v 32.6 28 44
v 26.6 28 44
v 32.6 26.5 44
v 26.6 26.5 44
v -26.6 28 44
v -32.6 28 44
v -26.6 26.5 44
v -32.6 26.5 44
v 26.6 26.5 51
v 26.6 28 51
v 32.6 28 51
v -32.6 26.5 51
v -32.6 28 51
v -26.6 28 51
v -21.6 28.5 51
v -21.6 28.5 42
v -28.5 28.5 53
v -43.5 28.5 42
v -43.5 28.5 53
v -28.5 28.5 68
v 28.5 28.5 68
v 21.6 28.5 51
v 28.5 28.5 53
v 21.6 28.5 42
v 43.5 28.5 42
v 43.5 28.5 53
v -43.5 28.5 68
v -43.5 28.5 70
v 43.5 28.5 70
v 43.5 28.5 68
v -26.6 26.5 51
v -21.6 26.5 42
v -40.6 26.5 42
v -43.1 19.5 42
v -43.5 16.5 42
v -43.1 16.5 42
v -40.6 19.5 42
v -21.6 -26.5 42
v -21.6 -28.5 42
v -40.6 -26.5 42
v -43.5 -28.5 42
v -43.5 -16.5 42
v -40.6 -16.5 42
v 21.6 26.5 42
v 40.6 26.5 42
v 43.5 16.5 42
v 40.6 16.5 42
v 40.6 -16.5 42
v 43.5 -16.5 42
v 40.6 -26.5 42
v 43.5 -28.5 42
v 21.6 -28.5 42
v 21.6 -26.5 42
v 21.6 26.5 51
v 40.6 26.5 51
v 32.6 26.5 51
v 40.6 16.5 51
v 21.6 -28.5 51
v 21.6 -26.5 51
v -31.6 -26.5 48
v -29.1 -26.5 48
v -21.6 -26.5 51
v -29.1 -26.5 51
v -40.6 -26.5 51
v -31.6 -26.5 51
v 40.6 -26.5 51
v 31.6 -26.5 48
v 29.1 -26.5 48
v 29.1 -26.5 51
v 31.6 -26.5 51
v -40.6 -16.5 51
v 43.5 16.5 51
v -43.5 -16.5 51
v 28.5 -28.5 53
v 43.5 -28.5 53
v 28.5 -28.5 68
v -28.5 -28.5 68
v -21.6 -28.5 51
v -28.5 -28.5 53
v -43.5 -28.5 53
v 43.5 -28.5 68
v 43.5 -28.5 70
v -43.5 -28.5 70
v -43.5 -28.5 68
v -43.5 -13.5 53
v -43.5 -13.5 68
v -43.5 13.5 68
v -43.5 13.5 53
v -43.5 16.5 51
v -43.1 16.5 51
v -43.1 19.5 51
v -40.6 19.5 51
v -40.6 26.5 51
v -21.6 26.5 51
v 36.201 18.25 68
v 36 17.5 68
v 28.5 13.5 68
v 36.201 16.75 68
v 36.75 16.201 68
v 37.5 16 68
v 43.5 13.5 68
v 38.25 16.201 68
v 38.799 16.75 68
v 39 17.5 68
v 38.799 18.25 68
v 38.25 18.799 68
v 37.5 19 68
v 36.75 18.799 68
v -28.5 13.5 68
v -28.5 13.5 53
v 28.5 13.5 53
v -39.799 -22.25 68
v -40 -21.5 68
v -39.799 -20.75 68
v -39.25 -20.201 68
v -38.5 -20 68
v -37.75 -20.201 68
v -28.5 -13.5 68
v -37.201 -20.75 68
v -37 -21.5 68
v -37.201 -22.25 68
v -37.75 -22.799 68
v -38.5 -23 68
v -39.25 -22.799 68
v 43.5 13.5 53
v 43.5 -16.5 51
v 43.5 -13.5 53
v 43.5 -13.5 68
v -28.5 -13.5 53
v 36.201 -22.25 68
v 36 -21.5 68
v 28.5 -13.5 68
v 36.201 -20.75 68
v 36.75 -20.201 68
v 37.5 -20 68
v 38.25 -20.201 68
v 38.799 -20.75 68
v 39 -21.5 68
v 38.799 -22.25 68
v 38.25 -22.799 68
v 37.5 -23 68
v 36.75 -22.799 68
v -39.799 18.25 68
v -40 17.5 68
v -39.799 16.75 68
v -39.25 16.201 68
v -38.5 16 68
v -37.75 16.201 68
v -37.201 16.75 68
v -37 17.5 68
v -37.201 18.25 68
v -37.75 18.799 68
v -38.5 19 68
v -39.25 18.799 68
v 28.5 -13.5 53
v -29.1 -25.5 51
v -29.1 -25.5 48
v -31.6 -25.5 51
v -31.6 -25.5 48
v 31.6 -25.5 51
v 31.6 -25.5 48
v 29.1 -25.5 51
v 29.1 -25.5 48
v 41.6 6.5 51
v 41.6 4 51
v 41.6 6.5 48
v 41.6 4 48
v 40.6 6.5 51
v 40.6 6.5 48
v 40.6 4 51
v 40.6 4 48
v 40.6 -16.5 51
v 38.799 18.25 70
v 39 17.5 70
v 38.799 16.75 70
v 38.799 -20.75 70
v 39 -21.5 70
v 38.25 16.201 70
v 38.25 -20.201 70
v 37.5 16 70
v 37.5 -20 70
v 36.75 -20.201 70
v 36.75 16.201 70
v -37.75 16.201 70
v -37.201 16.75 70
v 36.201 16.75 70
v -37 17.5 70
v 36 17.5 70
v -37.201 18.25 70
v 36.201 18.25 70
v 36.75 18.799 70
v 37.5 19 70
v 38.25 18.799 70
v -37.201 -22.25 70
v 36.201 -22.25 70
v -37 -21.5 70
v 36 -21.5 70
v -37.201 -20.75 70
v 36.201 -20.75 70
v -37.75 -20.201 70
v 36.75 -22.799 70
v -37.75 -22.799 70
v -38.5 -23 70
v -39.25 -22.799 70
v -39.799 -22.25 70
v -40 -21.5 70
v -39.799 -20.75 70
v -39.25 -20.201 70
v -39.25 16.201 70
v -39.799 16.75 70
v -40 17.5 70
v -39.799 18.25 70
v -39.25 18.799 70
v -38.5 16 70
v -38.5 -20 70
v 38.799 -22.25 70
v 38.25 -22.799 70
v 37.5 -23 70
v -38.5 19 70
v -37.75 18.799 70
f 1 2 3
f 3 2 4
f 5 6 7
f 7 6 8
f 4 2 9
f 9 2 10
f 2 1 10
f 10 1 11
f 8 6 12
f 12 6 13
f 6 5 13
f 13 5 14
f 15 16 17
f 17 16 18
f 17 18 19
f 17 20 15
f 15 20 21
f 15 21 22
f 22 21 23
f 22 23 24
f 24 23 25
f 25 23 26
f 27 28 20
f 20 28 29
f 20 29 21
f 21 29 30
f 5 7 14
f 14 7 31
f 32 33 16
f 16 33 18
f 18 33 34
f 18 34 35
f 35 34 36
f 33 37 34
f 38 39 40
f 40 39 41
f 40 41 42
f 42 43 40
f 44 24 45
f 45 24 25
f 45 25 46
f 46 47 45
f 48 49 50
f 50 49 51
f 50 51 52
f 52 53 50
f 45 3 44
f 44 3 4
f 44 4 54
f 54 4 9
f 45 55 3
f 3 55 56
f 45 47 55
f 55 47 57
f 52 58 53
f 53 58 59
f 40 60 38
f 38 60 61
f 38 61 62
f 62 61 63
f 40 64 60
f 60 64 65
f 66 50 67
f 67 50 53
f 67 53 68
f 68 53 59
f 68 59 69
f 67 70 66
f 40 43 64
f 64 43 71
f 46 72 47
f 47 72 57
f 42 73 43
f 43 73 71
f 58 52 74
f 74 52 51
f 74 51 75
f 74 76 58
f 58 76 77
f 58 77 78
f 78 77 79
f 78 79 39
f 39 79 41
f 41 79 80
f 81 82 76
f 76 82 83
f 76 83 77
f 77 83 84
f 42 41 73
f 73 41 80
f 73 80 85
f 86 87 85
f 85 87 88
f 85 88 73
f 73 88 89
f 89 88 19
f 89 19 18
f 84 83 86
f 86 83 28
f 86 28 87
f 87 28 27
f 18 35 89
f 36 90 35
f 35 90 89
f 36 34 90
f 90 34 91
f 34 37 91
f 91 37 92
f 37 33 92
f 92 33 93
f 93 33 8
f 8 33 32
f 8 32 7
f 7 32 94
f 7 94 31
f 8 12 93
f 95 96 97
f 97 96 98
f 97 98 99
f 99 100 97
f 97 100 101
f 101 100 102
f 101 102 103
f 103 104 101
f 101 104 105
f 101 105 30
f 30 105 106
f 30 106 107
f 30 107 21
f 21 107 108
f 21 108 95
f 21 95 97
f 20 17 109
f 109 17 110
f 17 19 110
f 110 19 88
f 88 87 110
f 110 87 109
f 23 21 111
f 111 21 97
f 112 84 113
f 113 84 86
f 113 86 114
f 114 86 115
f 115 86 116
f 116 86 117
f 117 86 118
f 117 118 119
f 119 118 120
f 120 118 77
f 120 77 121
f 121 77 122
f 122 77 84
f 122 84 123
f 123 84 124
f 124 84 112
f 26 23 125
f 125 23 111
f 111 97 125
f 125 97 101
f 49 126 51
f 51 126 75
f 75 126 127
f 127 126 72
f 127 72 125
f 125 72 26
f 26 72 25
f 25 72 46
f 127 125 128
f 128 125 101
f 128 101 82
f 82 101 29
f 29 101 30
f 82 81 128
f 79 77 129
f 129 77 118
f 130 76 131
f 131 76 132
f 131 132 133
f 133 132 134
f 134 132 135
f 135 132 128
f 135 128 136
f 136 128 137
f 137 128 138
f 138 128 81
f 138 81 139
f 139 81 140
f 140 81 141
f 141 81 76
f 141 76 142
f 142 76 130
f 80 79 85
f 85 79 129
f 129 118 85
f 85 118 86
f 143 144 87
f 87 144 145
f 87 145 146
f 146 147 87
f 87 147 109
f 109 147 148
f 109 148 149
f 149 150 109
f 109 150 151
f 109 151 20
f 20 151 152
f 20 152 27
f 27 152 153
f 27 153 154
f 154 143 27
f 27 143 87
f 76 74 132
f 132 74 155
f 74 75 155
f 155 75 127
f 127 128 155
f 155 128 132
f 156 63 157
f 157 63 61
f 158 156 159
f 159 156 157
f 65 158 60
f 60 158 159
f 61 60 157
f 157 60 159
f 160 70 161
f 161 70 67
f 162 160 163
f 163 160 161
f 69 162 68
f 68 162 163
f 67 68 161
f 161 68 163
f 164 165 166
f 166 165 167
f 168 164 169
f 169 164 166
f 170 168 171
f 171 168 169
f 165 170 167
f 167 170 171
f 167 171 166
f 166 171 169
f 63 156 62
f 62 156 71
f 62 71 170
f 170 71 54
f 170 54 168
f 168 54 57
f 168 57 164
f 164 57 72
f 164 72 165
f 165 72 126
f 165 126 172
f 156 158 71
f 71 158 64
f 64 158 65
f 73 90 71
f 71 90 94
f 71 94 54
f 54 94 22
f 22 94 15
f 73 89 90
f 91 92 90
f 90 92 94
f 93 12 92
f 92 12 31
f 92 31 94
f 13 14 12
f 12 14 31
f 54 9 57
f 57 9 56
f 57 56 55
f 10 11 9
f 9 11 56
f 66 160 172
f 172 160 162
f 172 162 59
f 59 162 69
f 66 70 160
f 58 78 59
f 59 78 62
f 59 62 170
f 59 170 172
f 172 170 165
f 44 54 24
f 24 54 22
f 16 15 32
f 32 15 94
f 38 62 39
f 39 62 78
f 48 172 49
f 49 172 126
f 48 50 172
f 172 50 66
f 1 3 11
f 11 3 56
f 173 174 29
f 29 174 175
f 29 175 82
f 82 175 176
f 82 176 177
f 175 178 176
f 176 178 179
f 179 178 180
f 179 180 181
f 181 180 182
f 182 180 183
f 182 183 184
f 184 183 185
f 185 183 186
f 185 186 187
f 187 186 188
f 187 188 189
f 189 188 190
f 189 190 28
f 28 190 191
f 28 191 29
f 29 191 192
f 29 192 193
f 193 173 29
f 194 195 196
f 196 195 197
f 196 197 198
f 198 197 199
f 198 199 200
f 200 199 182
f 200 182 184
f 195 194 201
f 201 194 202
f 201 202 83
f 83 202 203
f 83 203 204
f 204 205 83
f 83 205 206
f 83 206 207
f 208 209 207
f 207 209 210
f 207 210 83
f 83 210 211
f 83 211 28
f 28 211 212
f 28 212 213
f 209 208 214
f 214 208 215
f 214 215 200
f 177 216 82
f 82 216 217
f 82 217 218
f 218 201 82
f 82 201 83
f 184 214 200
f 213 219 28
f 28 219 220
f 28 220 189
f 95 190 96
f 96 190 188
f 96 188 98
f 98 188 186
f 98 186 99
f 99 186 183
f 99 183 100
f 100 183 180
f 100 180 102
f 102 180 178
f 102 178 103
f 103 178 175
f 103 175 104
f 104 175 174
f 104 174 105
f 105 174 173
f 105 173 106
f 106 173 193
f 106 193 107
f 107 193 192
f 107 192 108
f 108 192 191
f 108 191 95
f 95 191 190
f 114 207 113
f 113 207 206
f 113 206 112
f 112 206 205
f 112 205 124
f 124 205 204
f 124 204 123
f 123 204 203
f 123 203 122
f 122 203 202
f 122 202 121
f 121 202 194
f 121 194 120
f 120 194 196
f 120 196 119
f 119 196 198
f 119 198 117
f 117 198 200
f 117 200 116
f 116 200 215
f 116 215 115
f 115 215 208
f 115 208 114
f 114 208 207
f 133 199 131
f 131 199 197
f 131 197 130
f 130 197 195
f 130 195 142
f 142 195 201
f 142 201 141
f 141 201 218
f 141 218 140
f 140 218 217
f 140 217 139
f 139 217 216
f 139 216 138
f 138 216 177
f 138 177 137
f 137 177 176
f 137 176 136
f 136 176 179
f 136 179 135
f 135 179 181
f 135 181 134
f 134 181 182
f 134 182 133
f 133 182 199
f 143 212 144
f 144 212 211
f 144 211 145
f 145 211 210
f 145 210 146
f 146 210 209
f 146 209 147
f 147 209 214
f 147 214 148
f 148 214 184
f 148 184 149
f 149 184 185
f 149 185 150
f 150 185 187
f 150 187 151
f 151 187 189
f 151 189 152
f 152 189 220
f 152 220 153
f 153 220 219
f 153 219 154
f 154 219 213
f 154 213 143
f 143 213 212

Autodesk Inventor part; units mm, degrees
ref_plane "YZ Plane" through (0, 0, 0) normal (1, 0, 0) x (0, 1, 0)
ref_plane "XZ Plane" through (0, 0, 0) normal (0, 1, 0) x (-1, 0, 0)
ref_plane "XY Plane" through (0, 0, 0) normal (0, 0, 1) x (1, 0, 0)
sketch "スケッチ3" plane through (0, 0, 0) normal (0, 0, 1) x (1, 0, 0)
  line L0 (43.5, -28.5) -> (-43.5, -28.5)
  line L1 (-43.5, -28.5) -> (-43.5, 28.5)
  line L2 (-43.5, 28.5) -> (43.5, 28.5)
  line L3 (43.5, 28.5) -> (43.5, -28.5)
  line L4 (43.5, -28.5) -> (-43.5, 28.5) construction
  line L5 (-43.5, -28.5) -> (43.5, 28.5) construction
  point P0 (0, 0)
  dimension "d4" = 57
  dimension "d5" = 87
extrude "枠" add sketch "スケッチ3" along normal blind 70
sketch "スケッチ4" plane through (0, 0, 0) normal (0, 0, -1) x (-1, 0, 0)
  line L0 (40.6, -26.5) -> (-40.6, -26.5)
  line L1 (-40.6, -26.5) -> (-40.6, 26.5)
  line L2 (-40.6, 26.5) -> (40.6, 26.5)
  line L3 (40.6, 26.5) -> (40.6, -26.5)
  line L4 (40.6, -26.5) -> (-40.6, 26.5) construction
  line L5 (-40.6, -26.5) -> (40.6, 26.5) construction
  point P0 (0, 0)
  dimension "d8" = 81.2
  dimension "d9" = 53
extrude "本体" cut sketch "スケッチ4" against normal blind 56
sketch "スケッチ5" plane through (-43.5, 28.5, 0) normal (0, 1, 0) x (1, 0, 0)
  line L0 (0, 0) -> (0, -70) projected
  line L1 (87, 0) -> (87, -70) projected
  line L2 (0, -51) -> (87, -51)
  line L3 (87, -51) -> (87, -55)
  line L4 (87, -55) -> (0, -55)
  line L5 (0, -55) -> (0, -51)
  line L6 (87, -70) -> (0, -70) projected
  point P0 (43.5, 0)
  dimension "d12" = 15
  dimension "d13" = 4
extrude "台" add sketch "スケッチ5" against normal blind 55 contours L2 L1 L4 L0
sketch "スケッチ6" plane through (0, 0, 0) normal (0, 0, -1) x (-1, 0, 0)
  line L0 (40.6, -26.5) -> (40.6, 26.5) projected
  line L1 (43.1, 19.5) -> (40.6, 19.5)
  line L2 (40.6, 19.5) -> (40.6, 13.5)
  line L3 (40.6, 13.5) -> (43.1, 13.5)
  line L4 (43.1, 13.5) -> (43.1, 19.5)
  line L5 (40.6, 26.5) -> (-40.6, 26.5) projected
  line L6 (32.6, 26.5) -> (26.6, 26.5)
  line L7 (26.6, 26.5) -> (26.6, 28)
  line L8 (26.6, 28) -> (32.6, 28)
  line L9 (32.6, 28) -> (32.6, 26.5)
  line L10 (-26.6, 26.5) -> (-32.6, 26.5)
  line L11 (-32.6, 26.5) -> (-32.6, 28)
  line L12 (-32.6, 28) -> (-26.6, 28)
  line L13 (-26.6, 28) -> (-26.6, 26.5)
  line L14 (-40.6, -26.5) -> (-40.6, 26.5) projected
  point P0 (0, 0)
  dimension "d16" = 2.5
  dimension "d17" = 13
  dimension "d18" = 6
  dimension "d19" = 1.5
  dimension "d20" = 8
  dimension "d21" = 6
  dimension "d22" = 1.5
  dimension "d23" = 6
  dimension "d24" = 8
extrude "溝" cut sketch "スケッチ6" against normal blind 51
sketch "スケッチ7" plane through (40.6, -26.5, 0) normal (-1, 0, 0) x (0, 0, 1)
  line L0 (51, 10) -> (31, 10)
  line L1 (31, 10) -> (31, 43)
  line L2 (31, 43) -> (51, 43)
  line L3 (51, 43) -> (51, 10)
  line L4 (51, 53) -> (0, 53) projected
  line L5 (51, 0) -> (51, 53) projected
  point P0 (0, 26.5)
  point P1 (0, 0)
  dimension "d27" = 10
  dimension "d28" = 10
  dimension "d29" = 20
  dimension "d30" = 0
extrude "USB穴" cut sketch "スケッチ7" along normal through all both and the other way through all
sketch "スケッチ8" plane through (-26.6, 26.5, 0) normal (0, -1, 0) x (1, 0, 0)
  line L0 (67.2, 51) -> (-14, 51) projected
  line L1 (48.2, 31) -> (5, 31)
  line L2 (5, 31) -> (5, 51)
  line L3 (5, 51) -> (48.2, 51)
  line L4 (48.2, 51) -> (48.2, 31)
  line L5 (53.2, 0) -> (53.2, 51) projected
  line L6 (0, 51) -> (0, 0) projected
  point P0 (26.6, 0)
  dimension "d33" = 5
  dimension "d34" = 5
  dimension "d35" = 20
extrude "ボタン押下用穴" cut sketch "スケッチ8" along normal through all both and the other way through all
sketch "su" plane through (-32.6, 26.5, 51) normal (0, 0, -1) x (-1, 0, 0)
  line L0 (-64.2, -53) -> (-61.7, -53)
  line L1 (-61.7, -53) -> (-61.7, -52)
  line L2 (-61.7, -52) -> (-64.2, -52)
  line L3 (-64.2, -52) -> (-64.2, -53)
  line L4 (-3.5, -53) -> (-1, -53)
  line L5 (-1, -53) -> (-1, -52)
  line L6 (-1, -52) -> (-3.5, -52)
  line L7 (-3.5, -52) -> (-3.5, -53)
  line L8 (-74.2, -22.5) -> (-73.2, -22.5)
  line L9 (-73.2, -22.5) -> (-73.2, -20)
  line L10 (-73.2, -20) -> (-74.2, -20)
  line L11 (-74.2, -20) -> (-74.2, -22.5)
  line L12 (-73.2, -53) -> (-73.2, -43) projected
  line L13 (8, -53) -> (-73.2, -53) projected
  line L14 (8, -13) -> (8, -53) projected
  point P0 (-32.6, -26.5)
  point P1 (-65.2, 0)
  point P2 (8, -40)
  dimension "d49" = 9
  dimension "d50" = 0
  dimension "d51" = 2.5
  dimension "d52" = 1
  dimension "d53" = 20
  dimension "d54" = 1
  dimension "d56" = 2.5
  dimension "d57" = 9
  dimension "d58" = 1
  dimension "d59" = 2.5
  dimension "d60" = 0
extrude "凸" add sketch "su" along normal blind 3
sketch "スケッチ11" plane through (0, 0, 70) normal (0, 0, 1) x (1, 0, 0)
  line L0 (43.5, -28.5) -> (-43.5, -28.5) projected
  line L1 (43.5, 28.5) -> (-43.5, 28.5) projected
  line L2 (-43.5, -28.5) -> (43.5, -28.5)
  line L3 (43.5, -28.5) -> (43.5, 28.5)
  line L4 (43.5, 28.5) -> (-43.5, 28.5)
  line L5 (-43.5, 28.5) -> (-43.5, -28.5)
  point P0 (0, 0)
extrude "底面" add sketch "スケッチ11" against normal up to surface (15 mm away)
sketch "スケッチ13" plane through (-43.5, -28.5, 0) normal (0, -1, 0) x (1, 0, 0)
  line L0 (87, 0) -> (87, 70) projected
  line L1 (87, 53) -> (72, 53)
  line L2 (72, 53) -> (72, 68)
  line L3 (72, 68) -> (87, 68)
  line L4 (87, 68) -> (87, 53)
  line L5 (0, 0) -> (0, 70) projected
  line L6 (0, 53) -> (15, 53)
  line L7 (15, 53) -> (15, 68)
  line L8 (15, 68) -> (0, 68)
  line L9 (0, 68) -> (0, 53)
  line L10 (0, 70) -> (87, 70) projected
  point P0 (43.5, 0)
  dimension "d70" = 2
  dimension "d71" = 15
  dimension "d72" = 15
  dimension "d73" = 15
extrude "ネジ止め1" cut sketch "スケッチ13" against normal blind 15
sketch "スケッチ14" plane through (-43.5, 28.5, 0) normal (0, 1, 0) x (1, 0, 0)
  line L0 (0, 0) -> (0, -70) projected
  line L1 (0, -53) -> (15, -53)
  line L2 (15, -53) -> (15, -68)
  line L3 (15, -68) -> (0, -68)
  line L4 (0, -68) -> (0, -53)
  line L5 (87, 0) -> (87, -53) projected
  line L6 (87, -53) -> (72, -53)
  line L7 (72, -53) -> (72, -68)
  line L8 (72, -68) -> (87, -68)
  line L9 (87, -68) -> (87, -53)
  line L10 (87, -70) -> (0, -70) projected
  point P0 (43.5, 0)
  dimension "d76" = 15
  dimension "d77" = 15
  dimension "d78" = 15
  dimension "d79" = 2
extrude "ネジ止め2" cut sketch "スケッチ14" against normal blind 15
sketch "スケッチ19" plane through (0, 0, 0) normal (0, 0, -1) x (-1, 0, 0)
  line L0 (-43.5, 28.5) -> (43.5, 28.5) projected
  line L1 (-43.5, -28.5) -> (-28.5, -28.5) projected
  line L2 (43.5, 28.5) -> (-43.5, 28.5)
  line L3 (-43.5, 28.5) -> (-43.5, -28.5)
  line L4 (-43.5, -28.5) -> (43.5, -28.5)
  line L5 (43.5, -28.5) -> (43.5, 28.5)
  point P0 (0, 0)
extrude "上面削り" cut sketch "スケッチ19" against normal blind 42
sketch "ネジ穴用" plane through (0, 0, 70) normal (0, 0, 1) x (1, 0, 0)
  line L0 (37.5, 17.5) -> (-38.5, 17.5)
  line L1 (-38.5, 17.5) -> (-38.5, -21.5)
  line L2 (-38.5, -21.5) -> (37.5, -21.5)
  line L3 (37.5, -21.5) -> (37.5, 17.5)
  line L4 (43.5, -28.5) -> (43.5, 28.5) projected
  line L5 (-43.5, -28.5) -> (43.5, -28.5) projected
  point P0 (0, 0)
  dimension "d100" = 39
  dimension "d101" = 76
  dimension "d102" = 6
  dimension "d103" = 7
sketch "スケッチ23" plane through (0, 0, 42) normal (0, 0, -1) x (-1, 0, 0)
  line L0 (-32.6, 26.5) -> (-32.6, 28) projected
  line L1 (-26.6, 28) -> (-26.6, 26.5) projected
  line L2 (-32.6, 28.5) -> (-26.6, 28.5)
  line L3 (-26.6, 28.5) -> (-26.6, 26.5)
  line L4 (-26.6, 26.5) -> (-32.6, 26.5)
  line L5 (-32.6, 26.5) -> (-32.6, 28.5)
  line L6 (26.6, 28) -> (26.6, 26.5) projected
  line L7 (32.6, 26.5) -> (32.6, 28) projected
  line L8 (26.6, 26.5) -> (32.6, 26.5)
  line L9 (32.6, 26.5) -> (32.6, 28.5)
  line L10 (32.6, 28.5) -> (26.6, 28.5)
  line L11 (26.6, 28.5) -> (26.6, 26.5)
  point P0 (0, 0)
  point P1 (26.6, 28.5)
extrude "押し出し18" add sketch "スケッチ23" against normal blind 2
hole "穴2" at (-38.5, -21.5, 70) at (37.5, -21.5, 70) at (37.5, 17.5, 70) at (-38.5, 17.5, 70) direction (0, 0, -1) diameter 3 depth 4 tip angle 118
properties part number "cmoda7"
